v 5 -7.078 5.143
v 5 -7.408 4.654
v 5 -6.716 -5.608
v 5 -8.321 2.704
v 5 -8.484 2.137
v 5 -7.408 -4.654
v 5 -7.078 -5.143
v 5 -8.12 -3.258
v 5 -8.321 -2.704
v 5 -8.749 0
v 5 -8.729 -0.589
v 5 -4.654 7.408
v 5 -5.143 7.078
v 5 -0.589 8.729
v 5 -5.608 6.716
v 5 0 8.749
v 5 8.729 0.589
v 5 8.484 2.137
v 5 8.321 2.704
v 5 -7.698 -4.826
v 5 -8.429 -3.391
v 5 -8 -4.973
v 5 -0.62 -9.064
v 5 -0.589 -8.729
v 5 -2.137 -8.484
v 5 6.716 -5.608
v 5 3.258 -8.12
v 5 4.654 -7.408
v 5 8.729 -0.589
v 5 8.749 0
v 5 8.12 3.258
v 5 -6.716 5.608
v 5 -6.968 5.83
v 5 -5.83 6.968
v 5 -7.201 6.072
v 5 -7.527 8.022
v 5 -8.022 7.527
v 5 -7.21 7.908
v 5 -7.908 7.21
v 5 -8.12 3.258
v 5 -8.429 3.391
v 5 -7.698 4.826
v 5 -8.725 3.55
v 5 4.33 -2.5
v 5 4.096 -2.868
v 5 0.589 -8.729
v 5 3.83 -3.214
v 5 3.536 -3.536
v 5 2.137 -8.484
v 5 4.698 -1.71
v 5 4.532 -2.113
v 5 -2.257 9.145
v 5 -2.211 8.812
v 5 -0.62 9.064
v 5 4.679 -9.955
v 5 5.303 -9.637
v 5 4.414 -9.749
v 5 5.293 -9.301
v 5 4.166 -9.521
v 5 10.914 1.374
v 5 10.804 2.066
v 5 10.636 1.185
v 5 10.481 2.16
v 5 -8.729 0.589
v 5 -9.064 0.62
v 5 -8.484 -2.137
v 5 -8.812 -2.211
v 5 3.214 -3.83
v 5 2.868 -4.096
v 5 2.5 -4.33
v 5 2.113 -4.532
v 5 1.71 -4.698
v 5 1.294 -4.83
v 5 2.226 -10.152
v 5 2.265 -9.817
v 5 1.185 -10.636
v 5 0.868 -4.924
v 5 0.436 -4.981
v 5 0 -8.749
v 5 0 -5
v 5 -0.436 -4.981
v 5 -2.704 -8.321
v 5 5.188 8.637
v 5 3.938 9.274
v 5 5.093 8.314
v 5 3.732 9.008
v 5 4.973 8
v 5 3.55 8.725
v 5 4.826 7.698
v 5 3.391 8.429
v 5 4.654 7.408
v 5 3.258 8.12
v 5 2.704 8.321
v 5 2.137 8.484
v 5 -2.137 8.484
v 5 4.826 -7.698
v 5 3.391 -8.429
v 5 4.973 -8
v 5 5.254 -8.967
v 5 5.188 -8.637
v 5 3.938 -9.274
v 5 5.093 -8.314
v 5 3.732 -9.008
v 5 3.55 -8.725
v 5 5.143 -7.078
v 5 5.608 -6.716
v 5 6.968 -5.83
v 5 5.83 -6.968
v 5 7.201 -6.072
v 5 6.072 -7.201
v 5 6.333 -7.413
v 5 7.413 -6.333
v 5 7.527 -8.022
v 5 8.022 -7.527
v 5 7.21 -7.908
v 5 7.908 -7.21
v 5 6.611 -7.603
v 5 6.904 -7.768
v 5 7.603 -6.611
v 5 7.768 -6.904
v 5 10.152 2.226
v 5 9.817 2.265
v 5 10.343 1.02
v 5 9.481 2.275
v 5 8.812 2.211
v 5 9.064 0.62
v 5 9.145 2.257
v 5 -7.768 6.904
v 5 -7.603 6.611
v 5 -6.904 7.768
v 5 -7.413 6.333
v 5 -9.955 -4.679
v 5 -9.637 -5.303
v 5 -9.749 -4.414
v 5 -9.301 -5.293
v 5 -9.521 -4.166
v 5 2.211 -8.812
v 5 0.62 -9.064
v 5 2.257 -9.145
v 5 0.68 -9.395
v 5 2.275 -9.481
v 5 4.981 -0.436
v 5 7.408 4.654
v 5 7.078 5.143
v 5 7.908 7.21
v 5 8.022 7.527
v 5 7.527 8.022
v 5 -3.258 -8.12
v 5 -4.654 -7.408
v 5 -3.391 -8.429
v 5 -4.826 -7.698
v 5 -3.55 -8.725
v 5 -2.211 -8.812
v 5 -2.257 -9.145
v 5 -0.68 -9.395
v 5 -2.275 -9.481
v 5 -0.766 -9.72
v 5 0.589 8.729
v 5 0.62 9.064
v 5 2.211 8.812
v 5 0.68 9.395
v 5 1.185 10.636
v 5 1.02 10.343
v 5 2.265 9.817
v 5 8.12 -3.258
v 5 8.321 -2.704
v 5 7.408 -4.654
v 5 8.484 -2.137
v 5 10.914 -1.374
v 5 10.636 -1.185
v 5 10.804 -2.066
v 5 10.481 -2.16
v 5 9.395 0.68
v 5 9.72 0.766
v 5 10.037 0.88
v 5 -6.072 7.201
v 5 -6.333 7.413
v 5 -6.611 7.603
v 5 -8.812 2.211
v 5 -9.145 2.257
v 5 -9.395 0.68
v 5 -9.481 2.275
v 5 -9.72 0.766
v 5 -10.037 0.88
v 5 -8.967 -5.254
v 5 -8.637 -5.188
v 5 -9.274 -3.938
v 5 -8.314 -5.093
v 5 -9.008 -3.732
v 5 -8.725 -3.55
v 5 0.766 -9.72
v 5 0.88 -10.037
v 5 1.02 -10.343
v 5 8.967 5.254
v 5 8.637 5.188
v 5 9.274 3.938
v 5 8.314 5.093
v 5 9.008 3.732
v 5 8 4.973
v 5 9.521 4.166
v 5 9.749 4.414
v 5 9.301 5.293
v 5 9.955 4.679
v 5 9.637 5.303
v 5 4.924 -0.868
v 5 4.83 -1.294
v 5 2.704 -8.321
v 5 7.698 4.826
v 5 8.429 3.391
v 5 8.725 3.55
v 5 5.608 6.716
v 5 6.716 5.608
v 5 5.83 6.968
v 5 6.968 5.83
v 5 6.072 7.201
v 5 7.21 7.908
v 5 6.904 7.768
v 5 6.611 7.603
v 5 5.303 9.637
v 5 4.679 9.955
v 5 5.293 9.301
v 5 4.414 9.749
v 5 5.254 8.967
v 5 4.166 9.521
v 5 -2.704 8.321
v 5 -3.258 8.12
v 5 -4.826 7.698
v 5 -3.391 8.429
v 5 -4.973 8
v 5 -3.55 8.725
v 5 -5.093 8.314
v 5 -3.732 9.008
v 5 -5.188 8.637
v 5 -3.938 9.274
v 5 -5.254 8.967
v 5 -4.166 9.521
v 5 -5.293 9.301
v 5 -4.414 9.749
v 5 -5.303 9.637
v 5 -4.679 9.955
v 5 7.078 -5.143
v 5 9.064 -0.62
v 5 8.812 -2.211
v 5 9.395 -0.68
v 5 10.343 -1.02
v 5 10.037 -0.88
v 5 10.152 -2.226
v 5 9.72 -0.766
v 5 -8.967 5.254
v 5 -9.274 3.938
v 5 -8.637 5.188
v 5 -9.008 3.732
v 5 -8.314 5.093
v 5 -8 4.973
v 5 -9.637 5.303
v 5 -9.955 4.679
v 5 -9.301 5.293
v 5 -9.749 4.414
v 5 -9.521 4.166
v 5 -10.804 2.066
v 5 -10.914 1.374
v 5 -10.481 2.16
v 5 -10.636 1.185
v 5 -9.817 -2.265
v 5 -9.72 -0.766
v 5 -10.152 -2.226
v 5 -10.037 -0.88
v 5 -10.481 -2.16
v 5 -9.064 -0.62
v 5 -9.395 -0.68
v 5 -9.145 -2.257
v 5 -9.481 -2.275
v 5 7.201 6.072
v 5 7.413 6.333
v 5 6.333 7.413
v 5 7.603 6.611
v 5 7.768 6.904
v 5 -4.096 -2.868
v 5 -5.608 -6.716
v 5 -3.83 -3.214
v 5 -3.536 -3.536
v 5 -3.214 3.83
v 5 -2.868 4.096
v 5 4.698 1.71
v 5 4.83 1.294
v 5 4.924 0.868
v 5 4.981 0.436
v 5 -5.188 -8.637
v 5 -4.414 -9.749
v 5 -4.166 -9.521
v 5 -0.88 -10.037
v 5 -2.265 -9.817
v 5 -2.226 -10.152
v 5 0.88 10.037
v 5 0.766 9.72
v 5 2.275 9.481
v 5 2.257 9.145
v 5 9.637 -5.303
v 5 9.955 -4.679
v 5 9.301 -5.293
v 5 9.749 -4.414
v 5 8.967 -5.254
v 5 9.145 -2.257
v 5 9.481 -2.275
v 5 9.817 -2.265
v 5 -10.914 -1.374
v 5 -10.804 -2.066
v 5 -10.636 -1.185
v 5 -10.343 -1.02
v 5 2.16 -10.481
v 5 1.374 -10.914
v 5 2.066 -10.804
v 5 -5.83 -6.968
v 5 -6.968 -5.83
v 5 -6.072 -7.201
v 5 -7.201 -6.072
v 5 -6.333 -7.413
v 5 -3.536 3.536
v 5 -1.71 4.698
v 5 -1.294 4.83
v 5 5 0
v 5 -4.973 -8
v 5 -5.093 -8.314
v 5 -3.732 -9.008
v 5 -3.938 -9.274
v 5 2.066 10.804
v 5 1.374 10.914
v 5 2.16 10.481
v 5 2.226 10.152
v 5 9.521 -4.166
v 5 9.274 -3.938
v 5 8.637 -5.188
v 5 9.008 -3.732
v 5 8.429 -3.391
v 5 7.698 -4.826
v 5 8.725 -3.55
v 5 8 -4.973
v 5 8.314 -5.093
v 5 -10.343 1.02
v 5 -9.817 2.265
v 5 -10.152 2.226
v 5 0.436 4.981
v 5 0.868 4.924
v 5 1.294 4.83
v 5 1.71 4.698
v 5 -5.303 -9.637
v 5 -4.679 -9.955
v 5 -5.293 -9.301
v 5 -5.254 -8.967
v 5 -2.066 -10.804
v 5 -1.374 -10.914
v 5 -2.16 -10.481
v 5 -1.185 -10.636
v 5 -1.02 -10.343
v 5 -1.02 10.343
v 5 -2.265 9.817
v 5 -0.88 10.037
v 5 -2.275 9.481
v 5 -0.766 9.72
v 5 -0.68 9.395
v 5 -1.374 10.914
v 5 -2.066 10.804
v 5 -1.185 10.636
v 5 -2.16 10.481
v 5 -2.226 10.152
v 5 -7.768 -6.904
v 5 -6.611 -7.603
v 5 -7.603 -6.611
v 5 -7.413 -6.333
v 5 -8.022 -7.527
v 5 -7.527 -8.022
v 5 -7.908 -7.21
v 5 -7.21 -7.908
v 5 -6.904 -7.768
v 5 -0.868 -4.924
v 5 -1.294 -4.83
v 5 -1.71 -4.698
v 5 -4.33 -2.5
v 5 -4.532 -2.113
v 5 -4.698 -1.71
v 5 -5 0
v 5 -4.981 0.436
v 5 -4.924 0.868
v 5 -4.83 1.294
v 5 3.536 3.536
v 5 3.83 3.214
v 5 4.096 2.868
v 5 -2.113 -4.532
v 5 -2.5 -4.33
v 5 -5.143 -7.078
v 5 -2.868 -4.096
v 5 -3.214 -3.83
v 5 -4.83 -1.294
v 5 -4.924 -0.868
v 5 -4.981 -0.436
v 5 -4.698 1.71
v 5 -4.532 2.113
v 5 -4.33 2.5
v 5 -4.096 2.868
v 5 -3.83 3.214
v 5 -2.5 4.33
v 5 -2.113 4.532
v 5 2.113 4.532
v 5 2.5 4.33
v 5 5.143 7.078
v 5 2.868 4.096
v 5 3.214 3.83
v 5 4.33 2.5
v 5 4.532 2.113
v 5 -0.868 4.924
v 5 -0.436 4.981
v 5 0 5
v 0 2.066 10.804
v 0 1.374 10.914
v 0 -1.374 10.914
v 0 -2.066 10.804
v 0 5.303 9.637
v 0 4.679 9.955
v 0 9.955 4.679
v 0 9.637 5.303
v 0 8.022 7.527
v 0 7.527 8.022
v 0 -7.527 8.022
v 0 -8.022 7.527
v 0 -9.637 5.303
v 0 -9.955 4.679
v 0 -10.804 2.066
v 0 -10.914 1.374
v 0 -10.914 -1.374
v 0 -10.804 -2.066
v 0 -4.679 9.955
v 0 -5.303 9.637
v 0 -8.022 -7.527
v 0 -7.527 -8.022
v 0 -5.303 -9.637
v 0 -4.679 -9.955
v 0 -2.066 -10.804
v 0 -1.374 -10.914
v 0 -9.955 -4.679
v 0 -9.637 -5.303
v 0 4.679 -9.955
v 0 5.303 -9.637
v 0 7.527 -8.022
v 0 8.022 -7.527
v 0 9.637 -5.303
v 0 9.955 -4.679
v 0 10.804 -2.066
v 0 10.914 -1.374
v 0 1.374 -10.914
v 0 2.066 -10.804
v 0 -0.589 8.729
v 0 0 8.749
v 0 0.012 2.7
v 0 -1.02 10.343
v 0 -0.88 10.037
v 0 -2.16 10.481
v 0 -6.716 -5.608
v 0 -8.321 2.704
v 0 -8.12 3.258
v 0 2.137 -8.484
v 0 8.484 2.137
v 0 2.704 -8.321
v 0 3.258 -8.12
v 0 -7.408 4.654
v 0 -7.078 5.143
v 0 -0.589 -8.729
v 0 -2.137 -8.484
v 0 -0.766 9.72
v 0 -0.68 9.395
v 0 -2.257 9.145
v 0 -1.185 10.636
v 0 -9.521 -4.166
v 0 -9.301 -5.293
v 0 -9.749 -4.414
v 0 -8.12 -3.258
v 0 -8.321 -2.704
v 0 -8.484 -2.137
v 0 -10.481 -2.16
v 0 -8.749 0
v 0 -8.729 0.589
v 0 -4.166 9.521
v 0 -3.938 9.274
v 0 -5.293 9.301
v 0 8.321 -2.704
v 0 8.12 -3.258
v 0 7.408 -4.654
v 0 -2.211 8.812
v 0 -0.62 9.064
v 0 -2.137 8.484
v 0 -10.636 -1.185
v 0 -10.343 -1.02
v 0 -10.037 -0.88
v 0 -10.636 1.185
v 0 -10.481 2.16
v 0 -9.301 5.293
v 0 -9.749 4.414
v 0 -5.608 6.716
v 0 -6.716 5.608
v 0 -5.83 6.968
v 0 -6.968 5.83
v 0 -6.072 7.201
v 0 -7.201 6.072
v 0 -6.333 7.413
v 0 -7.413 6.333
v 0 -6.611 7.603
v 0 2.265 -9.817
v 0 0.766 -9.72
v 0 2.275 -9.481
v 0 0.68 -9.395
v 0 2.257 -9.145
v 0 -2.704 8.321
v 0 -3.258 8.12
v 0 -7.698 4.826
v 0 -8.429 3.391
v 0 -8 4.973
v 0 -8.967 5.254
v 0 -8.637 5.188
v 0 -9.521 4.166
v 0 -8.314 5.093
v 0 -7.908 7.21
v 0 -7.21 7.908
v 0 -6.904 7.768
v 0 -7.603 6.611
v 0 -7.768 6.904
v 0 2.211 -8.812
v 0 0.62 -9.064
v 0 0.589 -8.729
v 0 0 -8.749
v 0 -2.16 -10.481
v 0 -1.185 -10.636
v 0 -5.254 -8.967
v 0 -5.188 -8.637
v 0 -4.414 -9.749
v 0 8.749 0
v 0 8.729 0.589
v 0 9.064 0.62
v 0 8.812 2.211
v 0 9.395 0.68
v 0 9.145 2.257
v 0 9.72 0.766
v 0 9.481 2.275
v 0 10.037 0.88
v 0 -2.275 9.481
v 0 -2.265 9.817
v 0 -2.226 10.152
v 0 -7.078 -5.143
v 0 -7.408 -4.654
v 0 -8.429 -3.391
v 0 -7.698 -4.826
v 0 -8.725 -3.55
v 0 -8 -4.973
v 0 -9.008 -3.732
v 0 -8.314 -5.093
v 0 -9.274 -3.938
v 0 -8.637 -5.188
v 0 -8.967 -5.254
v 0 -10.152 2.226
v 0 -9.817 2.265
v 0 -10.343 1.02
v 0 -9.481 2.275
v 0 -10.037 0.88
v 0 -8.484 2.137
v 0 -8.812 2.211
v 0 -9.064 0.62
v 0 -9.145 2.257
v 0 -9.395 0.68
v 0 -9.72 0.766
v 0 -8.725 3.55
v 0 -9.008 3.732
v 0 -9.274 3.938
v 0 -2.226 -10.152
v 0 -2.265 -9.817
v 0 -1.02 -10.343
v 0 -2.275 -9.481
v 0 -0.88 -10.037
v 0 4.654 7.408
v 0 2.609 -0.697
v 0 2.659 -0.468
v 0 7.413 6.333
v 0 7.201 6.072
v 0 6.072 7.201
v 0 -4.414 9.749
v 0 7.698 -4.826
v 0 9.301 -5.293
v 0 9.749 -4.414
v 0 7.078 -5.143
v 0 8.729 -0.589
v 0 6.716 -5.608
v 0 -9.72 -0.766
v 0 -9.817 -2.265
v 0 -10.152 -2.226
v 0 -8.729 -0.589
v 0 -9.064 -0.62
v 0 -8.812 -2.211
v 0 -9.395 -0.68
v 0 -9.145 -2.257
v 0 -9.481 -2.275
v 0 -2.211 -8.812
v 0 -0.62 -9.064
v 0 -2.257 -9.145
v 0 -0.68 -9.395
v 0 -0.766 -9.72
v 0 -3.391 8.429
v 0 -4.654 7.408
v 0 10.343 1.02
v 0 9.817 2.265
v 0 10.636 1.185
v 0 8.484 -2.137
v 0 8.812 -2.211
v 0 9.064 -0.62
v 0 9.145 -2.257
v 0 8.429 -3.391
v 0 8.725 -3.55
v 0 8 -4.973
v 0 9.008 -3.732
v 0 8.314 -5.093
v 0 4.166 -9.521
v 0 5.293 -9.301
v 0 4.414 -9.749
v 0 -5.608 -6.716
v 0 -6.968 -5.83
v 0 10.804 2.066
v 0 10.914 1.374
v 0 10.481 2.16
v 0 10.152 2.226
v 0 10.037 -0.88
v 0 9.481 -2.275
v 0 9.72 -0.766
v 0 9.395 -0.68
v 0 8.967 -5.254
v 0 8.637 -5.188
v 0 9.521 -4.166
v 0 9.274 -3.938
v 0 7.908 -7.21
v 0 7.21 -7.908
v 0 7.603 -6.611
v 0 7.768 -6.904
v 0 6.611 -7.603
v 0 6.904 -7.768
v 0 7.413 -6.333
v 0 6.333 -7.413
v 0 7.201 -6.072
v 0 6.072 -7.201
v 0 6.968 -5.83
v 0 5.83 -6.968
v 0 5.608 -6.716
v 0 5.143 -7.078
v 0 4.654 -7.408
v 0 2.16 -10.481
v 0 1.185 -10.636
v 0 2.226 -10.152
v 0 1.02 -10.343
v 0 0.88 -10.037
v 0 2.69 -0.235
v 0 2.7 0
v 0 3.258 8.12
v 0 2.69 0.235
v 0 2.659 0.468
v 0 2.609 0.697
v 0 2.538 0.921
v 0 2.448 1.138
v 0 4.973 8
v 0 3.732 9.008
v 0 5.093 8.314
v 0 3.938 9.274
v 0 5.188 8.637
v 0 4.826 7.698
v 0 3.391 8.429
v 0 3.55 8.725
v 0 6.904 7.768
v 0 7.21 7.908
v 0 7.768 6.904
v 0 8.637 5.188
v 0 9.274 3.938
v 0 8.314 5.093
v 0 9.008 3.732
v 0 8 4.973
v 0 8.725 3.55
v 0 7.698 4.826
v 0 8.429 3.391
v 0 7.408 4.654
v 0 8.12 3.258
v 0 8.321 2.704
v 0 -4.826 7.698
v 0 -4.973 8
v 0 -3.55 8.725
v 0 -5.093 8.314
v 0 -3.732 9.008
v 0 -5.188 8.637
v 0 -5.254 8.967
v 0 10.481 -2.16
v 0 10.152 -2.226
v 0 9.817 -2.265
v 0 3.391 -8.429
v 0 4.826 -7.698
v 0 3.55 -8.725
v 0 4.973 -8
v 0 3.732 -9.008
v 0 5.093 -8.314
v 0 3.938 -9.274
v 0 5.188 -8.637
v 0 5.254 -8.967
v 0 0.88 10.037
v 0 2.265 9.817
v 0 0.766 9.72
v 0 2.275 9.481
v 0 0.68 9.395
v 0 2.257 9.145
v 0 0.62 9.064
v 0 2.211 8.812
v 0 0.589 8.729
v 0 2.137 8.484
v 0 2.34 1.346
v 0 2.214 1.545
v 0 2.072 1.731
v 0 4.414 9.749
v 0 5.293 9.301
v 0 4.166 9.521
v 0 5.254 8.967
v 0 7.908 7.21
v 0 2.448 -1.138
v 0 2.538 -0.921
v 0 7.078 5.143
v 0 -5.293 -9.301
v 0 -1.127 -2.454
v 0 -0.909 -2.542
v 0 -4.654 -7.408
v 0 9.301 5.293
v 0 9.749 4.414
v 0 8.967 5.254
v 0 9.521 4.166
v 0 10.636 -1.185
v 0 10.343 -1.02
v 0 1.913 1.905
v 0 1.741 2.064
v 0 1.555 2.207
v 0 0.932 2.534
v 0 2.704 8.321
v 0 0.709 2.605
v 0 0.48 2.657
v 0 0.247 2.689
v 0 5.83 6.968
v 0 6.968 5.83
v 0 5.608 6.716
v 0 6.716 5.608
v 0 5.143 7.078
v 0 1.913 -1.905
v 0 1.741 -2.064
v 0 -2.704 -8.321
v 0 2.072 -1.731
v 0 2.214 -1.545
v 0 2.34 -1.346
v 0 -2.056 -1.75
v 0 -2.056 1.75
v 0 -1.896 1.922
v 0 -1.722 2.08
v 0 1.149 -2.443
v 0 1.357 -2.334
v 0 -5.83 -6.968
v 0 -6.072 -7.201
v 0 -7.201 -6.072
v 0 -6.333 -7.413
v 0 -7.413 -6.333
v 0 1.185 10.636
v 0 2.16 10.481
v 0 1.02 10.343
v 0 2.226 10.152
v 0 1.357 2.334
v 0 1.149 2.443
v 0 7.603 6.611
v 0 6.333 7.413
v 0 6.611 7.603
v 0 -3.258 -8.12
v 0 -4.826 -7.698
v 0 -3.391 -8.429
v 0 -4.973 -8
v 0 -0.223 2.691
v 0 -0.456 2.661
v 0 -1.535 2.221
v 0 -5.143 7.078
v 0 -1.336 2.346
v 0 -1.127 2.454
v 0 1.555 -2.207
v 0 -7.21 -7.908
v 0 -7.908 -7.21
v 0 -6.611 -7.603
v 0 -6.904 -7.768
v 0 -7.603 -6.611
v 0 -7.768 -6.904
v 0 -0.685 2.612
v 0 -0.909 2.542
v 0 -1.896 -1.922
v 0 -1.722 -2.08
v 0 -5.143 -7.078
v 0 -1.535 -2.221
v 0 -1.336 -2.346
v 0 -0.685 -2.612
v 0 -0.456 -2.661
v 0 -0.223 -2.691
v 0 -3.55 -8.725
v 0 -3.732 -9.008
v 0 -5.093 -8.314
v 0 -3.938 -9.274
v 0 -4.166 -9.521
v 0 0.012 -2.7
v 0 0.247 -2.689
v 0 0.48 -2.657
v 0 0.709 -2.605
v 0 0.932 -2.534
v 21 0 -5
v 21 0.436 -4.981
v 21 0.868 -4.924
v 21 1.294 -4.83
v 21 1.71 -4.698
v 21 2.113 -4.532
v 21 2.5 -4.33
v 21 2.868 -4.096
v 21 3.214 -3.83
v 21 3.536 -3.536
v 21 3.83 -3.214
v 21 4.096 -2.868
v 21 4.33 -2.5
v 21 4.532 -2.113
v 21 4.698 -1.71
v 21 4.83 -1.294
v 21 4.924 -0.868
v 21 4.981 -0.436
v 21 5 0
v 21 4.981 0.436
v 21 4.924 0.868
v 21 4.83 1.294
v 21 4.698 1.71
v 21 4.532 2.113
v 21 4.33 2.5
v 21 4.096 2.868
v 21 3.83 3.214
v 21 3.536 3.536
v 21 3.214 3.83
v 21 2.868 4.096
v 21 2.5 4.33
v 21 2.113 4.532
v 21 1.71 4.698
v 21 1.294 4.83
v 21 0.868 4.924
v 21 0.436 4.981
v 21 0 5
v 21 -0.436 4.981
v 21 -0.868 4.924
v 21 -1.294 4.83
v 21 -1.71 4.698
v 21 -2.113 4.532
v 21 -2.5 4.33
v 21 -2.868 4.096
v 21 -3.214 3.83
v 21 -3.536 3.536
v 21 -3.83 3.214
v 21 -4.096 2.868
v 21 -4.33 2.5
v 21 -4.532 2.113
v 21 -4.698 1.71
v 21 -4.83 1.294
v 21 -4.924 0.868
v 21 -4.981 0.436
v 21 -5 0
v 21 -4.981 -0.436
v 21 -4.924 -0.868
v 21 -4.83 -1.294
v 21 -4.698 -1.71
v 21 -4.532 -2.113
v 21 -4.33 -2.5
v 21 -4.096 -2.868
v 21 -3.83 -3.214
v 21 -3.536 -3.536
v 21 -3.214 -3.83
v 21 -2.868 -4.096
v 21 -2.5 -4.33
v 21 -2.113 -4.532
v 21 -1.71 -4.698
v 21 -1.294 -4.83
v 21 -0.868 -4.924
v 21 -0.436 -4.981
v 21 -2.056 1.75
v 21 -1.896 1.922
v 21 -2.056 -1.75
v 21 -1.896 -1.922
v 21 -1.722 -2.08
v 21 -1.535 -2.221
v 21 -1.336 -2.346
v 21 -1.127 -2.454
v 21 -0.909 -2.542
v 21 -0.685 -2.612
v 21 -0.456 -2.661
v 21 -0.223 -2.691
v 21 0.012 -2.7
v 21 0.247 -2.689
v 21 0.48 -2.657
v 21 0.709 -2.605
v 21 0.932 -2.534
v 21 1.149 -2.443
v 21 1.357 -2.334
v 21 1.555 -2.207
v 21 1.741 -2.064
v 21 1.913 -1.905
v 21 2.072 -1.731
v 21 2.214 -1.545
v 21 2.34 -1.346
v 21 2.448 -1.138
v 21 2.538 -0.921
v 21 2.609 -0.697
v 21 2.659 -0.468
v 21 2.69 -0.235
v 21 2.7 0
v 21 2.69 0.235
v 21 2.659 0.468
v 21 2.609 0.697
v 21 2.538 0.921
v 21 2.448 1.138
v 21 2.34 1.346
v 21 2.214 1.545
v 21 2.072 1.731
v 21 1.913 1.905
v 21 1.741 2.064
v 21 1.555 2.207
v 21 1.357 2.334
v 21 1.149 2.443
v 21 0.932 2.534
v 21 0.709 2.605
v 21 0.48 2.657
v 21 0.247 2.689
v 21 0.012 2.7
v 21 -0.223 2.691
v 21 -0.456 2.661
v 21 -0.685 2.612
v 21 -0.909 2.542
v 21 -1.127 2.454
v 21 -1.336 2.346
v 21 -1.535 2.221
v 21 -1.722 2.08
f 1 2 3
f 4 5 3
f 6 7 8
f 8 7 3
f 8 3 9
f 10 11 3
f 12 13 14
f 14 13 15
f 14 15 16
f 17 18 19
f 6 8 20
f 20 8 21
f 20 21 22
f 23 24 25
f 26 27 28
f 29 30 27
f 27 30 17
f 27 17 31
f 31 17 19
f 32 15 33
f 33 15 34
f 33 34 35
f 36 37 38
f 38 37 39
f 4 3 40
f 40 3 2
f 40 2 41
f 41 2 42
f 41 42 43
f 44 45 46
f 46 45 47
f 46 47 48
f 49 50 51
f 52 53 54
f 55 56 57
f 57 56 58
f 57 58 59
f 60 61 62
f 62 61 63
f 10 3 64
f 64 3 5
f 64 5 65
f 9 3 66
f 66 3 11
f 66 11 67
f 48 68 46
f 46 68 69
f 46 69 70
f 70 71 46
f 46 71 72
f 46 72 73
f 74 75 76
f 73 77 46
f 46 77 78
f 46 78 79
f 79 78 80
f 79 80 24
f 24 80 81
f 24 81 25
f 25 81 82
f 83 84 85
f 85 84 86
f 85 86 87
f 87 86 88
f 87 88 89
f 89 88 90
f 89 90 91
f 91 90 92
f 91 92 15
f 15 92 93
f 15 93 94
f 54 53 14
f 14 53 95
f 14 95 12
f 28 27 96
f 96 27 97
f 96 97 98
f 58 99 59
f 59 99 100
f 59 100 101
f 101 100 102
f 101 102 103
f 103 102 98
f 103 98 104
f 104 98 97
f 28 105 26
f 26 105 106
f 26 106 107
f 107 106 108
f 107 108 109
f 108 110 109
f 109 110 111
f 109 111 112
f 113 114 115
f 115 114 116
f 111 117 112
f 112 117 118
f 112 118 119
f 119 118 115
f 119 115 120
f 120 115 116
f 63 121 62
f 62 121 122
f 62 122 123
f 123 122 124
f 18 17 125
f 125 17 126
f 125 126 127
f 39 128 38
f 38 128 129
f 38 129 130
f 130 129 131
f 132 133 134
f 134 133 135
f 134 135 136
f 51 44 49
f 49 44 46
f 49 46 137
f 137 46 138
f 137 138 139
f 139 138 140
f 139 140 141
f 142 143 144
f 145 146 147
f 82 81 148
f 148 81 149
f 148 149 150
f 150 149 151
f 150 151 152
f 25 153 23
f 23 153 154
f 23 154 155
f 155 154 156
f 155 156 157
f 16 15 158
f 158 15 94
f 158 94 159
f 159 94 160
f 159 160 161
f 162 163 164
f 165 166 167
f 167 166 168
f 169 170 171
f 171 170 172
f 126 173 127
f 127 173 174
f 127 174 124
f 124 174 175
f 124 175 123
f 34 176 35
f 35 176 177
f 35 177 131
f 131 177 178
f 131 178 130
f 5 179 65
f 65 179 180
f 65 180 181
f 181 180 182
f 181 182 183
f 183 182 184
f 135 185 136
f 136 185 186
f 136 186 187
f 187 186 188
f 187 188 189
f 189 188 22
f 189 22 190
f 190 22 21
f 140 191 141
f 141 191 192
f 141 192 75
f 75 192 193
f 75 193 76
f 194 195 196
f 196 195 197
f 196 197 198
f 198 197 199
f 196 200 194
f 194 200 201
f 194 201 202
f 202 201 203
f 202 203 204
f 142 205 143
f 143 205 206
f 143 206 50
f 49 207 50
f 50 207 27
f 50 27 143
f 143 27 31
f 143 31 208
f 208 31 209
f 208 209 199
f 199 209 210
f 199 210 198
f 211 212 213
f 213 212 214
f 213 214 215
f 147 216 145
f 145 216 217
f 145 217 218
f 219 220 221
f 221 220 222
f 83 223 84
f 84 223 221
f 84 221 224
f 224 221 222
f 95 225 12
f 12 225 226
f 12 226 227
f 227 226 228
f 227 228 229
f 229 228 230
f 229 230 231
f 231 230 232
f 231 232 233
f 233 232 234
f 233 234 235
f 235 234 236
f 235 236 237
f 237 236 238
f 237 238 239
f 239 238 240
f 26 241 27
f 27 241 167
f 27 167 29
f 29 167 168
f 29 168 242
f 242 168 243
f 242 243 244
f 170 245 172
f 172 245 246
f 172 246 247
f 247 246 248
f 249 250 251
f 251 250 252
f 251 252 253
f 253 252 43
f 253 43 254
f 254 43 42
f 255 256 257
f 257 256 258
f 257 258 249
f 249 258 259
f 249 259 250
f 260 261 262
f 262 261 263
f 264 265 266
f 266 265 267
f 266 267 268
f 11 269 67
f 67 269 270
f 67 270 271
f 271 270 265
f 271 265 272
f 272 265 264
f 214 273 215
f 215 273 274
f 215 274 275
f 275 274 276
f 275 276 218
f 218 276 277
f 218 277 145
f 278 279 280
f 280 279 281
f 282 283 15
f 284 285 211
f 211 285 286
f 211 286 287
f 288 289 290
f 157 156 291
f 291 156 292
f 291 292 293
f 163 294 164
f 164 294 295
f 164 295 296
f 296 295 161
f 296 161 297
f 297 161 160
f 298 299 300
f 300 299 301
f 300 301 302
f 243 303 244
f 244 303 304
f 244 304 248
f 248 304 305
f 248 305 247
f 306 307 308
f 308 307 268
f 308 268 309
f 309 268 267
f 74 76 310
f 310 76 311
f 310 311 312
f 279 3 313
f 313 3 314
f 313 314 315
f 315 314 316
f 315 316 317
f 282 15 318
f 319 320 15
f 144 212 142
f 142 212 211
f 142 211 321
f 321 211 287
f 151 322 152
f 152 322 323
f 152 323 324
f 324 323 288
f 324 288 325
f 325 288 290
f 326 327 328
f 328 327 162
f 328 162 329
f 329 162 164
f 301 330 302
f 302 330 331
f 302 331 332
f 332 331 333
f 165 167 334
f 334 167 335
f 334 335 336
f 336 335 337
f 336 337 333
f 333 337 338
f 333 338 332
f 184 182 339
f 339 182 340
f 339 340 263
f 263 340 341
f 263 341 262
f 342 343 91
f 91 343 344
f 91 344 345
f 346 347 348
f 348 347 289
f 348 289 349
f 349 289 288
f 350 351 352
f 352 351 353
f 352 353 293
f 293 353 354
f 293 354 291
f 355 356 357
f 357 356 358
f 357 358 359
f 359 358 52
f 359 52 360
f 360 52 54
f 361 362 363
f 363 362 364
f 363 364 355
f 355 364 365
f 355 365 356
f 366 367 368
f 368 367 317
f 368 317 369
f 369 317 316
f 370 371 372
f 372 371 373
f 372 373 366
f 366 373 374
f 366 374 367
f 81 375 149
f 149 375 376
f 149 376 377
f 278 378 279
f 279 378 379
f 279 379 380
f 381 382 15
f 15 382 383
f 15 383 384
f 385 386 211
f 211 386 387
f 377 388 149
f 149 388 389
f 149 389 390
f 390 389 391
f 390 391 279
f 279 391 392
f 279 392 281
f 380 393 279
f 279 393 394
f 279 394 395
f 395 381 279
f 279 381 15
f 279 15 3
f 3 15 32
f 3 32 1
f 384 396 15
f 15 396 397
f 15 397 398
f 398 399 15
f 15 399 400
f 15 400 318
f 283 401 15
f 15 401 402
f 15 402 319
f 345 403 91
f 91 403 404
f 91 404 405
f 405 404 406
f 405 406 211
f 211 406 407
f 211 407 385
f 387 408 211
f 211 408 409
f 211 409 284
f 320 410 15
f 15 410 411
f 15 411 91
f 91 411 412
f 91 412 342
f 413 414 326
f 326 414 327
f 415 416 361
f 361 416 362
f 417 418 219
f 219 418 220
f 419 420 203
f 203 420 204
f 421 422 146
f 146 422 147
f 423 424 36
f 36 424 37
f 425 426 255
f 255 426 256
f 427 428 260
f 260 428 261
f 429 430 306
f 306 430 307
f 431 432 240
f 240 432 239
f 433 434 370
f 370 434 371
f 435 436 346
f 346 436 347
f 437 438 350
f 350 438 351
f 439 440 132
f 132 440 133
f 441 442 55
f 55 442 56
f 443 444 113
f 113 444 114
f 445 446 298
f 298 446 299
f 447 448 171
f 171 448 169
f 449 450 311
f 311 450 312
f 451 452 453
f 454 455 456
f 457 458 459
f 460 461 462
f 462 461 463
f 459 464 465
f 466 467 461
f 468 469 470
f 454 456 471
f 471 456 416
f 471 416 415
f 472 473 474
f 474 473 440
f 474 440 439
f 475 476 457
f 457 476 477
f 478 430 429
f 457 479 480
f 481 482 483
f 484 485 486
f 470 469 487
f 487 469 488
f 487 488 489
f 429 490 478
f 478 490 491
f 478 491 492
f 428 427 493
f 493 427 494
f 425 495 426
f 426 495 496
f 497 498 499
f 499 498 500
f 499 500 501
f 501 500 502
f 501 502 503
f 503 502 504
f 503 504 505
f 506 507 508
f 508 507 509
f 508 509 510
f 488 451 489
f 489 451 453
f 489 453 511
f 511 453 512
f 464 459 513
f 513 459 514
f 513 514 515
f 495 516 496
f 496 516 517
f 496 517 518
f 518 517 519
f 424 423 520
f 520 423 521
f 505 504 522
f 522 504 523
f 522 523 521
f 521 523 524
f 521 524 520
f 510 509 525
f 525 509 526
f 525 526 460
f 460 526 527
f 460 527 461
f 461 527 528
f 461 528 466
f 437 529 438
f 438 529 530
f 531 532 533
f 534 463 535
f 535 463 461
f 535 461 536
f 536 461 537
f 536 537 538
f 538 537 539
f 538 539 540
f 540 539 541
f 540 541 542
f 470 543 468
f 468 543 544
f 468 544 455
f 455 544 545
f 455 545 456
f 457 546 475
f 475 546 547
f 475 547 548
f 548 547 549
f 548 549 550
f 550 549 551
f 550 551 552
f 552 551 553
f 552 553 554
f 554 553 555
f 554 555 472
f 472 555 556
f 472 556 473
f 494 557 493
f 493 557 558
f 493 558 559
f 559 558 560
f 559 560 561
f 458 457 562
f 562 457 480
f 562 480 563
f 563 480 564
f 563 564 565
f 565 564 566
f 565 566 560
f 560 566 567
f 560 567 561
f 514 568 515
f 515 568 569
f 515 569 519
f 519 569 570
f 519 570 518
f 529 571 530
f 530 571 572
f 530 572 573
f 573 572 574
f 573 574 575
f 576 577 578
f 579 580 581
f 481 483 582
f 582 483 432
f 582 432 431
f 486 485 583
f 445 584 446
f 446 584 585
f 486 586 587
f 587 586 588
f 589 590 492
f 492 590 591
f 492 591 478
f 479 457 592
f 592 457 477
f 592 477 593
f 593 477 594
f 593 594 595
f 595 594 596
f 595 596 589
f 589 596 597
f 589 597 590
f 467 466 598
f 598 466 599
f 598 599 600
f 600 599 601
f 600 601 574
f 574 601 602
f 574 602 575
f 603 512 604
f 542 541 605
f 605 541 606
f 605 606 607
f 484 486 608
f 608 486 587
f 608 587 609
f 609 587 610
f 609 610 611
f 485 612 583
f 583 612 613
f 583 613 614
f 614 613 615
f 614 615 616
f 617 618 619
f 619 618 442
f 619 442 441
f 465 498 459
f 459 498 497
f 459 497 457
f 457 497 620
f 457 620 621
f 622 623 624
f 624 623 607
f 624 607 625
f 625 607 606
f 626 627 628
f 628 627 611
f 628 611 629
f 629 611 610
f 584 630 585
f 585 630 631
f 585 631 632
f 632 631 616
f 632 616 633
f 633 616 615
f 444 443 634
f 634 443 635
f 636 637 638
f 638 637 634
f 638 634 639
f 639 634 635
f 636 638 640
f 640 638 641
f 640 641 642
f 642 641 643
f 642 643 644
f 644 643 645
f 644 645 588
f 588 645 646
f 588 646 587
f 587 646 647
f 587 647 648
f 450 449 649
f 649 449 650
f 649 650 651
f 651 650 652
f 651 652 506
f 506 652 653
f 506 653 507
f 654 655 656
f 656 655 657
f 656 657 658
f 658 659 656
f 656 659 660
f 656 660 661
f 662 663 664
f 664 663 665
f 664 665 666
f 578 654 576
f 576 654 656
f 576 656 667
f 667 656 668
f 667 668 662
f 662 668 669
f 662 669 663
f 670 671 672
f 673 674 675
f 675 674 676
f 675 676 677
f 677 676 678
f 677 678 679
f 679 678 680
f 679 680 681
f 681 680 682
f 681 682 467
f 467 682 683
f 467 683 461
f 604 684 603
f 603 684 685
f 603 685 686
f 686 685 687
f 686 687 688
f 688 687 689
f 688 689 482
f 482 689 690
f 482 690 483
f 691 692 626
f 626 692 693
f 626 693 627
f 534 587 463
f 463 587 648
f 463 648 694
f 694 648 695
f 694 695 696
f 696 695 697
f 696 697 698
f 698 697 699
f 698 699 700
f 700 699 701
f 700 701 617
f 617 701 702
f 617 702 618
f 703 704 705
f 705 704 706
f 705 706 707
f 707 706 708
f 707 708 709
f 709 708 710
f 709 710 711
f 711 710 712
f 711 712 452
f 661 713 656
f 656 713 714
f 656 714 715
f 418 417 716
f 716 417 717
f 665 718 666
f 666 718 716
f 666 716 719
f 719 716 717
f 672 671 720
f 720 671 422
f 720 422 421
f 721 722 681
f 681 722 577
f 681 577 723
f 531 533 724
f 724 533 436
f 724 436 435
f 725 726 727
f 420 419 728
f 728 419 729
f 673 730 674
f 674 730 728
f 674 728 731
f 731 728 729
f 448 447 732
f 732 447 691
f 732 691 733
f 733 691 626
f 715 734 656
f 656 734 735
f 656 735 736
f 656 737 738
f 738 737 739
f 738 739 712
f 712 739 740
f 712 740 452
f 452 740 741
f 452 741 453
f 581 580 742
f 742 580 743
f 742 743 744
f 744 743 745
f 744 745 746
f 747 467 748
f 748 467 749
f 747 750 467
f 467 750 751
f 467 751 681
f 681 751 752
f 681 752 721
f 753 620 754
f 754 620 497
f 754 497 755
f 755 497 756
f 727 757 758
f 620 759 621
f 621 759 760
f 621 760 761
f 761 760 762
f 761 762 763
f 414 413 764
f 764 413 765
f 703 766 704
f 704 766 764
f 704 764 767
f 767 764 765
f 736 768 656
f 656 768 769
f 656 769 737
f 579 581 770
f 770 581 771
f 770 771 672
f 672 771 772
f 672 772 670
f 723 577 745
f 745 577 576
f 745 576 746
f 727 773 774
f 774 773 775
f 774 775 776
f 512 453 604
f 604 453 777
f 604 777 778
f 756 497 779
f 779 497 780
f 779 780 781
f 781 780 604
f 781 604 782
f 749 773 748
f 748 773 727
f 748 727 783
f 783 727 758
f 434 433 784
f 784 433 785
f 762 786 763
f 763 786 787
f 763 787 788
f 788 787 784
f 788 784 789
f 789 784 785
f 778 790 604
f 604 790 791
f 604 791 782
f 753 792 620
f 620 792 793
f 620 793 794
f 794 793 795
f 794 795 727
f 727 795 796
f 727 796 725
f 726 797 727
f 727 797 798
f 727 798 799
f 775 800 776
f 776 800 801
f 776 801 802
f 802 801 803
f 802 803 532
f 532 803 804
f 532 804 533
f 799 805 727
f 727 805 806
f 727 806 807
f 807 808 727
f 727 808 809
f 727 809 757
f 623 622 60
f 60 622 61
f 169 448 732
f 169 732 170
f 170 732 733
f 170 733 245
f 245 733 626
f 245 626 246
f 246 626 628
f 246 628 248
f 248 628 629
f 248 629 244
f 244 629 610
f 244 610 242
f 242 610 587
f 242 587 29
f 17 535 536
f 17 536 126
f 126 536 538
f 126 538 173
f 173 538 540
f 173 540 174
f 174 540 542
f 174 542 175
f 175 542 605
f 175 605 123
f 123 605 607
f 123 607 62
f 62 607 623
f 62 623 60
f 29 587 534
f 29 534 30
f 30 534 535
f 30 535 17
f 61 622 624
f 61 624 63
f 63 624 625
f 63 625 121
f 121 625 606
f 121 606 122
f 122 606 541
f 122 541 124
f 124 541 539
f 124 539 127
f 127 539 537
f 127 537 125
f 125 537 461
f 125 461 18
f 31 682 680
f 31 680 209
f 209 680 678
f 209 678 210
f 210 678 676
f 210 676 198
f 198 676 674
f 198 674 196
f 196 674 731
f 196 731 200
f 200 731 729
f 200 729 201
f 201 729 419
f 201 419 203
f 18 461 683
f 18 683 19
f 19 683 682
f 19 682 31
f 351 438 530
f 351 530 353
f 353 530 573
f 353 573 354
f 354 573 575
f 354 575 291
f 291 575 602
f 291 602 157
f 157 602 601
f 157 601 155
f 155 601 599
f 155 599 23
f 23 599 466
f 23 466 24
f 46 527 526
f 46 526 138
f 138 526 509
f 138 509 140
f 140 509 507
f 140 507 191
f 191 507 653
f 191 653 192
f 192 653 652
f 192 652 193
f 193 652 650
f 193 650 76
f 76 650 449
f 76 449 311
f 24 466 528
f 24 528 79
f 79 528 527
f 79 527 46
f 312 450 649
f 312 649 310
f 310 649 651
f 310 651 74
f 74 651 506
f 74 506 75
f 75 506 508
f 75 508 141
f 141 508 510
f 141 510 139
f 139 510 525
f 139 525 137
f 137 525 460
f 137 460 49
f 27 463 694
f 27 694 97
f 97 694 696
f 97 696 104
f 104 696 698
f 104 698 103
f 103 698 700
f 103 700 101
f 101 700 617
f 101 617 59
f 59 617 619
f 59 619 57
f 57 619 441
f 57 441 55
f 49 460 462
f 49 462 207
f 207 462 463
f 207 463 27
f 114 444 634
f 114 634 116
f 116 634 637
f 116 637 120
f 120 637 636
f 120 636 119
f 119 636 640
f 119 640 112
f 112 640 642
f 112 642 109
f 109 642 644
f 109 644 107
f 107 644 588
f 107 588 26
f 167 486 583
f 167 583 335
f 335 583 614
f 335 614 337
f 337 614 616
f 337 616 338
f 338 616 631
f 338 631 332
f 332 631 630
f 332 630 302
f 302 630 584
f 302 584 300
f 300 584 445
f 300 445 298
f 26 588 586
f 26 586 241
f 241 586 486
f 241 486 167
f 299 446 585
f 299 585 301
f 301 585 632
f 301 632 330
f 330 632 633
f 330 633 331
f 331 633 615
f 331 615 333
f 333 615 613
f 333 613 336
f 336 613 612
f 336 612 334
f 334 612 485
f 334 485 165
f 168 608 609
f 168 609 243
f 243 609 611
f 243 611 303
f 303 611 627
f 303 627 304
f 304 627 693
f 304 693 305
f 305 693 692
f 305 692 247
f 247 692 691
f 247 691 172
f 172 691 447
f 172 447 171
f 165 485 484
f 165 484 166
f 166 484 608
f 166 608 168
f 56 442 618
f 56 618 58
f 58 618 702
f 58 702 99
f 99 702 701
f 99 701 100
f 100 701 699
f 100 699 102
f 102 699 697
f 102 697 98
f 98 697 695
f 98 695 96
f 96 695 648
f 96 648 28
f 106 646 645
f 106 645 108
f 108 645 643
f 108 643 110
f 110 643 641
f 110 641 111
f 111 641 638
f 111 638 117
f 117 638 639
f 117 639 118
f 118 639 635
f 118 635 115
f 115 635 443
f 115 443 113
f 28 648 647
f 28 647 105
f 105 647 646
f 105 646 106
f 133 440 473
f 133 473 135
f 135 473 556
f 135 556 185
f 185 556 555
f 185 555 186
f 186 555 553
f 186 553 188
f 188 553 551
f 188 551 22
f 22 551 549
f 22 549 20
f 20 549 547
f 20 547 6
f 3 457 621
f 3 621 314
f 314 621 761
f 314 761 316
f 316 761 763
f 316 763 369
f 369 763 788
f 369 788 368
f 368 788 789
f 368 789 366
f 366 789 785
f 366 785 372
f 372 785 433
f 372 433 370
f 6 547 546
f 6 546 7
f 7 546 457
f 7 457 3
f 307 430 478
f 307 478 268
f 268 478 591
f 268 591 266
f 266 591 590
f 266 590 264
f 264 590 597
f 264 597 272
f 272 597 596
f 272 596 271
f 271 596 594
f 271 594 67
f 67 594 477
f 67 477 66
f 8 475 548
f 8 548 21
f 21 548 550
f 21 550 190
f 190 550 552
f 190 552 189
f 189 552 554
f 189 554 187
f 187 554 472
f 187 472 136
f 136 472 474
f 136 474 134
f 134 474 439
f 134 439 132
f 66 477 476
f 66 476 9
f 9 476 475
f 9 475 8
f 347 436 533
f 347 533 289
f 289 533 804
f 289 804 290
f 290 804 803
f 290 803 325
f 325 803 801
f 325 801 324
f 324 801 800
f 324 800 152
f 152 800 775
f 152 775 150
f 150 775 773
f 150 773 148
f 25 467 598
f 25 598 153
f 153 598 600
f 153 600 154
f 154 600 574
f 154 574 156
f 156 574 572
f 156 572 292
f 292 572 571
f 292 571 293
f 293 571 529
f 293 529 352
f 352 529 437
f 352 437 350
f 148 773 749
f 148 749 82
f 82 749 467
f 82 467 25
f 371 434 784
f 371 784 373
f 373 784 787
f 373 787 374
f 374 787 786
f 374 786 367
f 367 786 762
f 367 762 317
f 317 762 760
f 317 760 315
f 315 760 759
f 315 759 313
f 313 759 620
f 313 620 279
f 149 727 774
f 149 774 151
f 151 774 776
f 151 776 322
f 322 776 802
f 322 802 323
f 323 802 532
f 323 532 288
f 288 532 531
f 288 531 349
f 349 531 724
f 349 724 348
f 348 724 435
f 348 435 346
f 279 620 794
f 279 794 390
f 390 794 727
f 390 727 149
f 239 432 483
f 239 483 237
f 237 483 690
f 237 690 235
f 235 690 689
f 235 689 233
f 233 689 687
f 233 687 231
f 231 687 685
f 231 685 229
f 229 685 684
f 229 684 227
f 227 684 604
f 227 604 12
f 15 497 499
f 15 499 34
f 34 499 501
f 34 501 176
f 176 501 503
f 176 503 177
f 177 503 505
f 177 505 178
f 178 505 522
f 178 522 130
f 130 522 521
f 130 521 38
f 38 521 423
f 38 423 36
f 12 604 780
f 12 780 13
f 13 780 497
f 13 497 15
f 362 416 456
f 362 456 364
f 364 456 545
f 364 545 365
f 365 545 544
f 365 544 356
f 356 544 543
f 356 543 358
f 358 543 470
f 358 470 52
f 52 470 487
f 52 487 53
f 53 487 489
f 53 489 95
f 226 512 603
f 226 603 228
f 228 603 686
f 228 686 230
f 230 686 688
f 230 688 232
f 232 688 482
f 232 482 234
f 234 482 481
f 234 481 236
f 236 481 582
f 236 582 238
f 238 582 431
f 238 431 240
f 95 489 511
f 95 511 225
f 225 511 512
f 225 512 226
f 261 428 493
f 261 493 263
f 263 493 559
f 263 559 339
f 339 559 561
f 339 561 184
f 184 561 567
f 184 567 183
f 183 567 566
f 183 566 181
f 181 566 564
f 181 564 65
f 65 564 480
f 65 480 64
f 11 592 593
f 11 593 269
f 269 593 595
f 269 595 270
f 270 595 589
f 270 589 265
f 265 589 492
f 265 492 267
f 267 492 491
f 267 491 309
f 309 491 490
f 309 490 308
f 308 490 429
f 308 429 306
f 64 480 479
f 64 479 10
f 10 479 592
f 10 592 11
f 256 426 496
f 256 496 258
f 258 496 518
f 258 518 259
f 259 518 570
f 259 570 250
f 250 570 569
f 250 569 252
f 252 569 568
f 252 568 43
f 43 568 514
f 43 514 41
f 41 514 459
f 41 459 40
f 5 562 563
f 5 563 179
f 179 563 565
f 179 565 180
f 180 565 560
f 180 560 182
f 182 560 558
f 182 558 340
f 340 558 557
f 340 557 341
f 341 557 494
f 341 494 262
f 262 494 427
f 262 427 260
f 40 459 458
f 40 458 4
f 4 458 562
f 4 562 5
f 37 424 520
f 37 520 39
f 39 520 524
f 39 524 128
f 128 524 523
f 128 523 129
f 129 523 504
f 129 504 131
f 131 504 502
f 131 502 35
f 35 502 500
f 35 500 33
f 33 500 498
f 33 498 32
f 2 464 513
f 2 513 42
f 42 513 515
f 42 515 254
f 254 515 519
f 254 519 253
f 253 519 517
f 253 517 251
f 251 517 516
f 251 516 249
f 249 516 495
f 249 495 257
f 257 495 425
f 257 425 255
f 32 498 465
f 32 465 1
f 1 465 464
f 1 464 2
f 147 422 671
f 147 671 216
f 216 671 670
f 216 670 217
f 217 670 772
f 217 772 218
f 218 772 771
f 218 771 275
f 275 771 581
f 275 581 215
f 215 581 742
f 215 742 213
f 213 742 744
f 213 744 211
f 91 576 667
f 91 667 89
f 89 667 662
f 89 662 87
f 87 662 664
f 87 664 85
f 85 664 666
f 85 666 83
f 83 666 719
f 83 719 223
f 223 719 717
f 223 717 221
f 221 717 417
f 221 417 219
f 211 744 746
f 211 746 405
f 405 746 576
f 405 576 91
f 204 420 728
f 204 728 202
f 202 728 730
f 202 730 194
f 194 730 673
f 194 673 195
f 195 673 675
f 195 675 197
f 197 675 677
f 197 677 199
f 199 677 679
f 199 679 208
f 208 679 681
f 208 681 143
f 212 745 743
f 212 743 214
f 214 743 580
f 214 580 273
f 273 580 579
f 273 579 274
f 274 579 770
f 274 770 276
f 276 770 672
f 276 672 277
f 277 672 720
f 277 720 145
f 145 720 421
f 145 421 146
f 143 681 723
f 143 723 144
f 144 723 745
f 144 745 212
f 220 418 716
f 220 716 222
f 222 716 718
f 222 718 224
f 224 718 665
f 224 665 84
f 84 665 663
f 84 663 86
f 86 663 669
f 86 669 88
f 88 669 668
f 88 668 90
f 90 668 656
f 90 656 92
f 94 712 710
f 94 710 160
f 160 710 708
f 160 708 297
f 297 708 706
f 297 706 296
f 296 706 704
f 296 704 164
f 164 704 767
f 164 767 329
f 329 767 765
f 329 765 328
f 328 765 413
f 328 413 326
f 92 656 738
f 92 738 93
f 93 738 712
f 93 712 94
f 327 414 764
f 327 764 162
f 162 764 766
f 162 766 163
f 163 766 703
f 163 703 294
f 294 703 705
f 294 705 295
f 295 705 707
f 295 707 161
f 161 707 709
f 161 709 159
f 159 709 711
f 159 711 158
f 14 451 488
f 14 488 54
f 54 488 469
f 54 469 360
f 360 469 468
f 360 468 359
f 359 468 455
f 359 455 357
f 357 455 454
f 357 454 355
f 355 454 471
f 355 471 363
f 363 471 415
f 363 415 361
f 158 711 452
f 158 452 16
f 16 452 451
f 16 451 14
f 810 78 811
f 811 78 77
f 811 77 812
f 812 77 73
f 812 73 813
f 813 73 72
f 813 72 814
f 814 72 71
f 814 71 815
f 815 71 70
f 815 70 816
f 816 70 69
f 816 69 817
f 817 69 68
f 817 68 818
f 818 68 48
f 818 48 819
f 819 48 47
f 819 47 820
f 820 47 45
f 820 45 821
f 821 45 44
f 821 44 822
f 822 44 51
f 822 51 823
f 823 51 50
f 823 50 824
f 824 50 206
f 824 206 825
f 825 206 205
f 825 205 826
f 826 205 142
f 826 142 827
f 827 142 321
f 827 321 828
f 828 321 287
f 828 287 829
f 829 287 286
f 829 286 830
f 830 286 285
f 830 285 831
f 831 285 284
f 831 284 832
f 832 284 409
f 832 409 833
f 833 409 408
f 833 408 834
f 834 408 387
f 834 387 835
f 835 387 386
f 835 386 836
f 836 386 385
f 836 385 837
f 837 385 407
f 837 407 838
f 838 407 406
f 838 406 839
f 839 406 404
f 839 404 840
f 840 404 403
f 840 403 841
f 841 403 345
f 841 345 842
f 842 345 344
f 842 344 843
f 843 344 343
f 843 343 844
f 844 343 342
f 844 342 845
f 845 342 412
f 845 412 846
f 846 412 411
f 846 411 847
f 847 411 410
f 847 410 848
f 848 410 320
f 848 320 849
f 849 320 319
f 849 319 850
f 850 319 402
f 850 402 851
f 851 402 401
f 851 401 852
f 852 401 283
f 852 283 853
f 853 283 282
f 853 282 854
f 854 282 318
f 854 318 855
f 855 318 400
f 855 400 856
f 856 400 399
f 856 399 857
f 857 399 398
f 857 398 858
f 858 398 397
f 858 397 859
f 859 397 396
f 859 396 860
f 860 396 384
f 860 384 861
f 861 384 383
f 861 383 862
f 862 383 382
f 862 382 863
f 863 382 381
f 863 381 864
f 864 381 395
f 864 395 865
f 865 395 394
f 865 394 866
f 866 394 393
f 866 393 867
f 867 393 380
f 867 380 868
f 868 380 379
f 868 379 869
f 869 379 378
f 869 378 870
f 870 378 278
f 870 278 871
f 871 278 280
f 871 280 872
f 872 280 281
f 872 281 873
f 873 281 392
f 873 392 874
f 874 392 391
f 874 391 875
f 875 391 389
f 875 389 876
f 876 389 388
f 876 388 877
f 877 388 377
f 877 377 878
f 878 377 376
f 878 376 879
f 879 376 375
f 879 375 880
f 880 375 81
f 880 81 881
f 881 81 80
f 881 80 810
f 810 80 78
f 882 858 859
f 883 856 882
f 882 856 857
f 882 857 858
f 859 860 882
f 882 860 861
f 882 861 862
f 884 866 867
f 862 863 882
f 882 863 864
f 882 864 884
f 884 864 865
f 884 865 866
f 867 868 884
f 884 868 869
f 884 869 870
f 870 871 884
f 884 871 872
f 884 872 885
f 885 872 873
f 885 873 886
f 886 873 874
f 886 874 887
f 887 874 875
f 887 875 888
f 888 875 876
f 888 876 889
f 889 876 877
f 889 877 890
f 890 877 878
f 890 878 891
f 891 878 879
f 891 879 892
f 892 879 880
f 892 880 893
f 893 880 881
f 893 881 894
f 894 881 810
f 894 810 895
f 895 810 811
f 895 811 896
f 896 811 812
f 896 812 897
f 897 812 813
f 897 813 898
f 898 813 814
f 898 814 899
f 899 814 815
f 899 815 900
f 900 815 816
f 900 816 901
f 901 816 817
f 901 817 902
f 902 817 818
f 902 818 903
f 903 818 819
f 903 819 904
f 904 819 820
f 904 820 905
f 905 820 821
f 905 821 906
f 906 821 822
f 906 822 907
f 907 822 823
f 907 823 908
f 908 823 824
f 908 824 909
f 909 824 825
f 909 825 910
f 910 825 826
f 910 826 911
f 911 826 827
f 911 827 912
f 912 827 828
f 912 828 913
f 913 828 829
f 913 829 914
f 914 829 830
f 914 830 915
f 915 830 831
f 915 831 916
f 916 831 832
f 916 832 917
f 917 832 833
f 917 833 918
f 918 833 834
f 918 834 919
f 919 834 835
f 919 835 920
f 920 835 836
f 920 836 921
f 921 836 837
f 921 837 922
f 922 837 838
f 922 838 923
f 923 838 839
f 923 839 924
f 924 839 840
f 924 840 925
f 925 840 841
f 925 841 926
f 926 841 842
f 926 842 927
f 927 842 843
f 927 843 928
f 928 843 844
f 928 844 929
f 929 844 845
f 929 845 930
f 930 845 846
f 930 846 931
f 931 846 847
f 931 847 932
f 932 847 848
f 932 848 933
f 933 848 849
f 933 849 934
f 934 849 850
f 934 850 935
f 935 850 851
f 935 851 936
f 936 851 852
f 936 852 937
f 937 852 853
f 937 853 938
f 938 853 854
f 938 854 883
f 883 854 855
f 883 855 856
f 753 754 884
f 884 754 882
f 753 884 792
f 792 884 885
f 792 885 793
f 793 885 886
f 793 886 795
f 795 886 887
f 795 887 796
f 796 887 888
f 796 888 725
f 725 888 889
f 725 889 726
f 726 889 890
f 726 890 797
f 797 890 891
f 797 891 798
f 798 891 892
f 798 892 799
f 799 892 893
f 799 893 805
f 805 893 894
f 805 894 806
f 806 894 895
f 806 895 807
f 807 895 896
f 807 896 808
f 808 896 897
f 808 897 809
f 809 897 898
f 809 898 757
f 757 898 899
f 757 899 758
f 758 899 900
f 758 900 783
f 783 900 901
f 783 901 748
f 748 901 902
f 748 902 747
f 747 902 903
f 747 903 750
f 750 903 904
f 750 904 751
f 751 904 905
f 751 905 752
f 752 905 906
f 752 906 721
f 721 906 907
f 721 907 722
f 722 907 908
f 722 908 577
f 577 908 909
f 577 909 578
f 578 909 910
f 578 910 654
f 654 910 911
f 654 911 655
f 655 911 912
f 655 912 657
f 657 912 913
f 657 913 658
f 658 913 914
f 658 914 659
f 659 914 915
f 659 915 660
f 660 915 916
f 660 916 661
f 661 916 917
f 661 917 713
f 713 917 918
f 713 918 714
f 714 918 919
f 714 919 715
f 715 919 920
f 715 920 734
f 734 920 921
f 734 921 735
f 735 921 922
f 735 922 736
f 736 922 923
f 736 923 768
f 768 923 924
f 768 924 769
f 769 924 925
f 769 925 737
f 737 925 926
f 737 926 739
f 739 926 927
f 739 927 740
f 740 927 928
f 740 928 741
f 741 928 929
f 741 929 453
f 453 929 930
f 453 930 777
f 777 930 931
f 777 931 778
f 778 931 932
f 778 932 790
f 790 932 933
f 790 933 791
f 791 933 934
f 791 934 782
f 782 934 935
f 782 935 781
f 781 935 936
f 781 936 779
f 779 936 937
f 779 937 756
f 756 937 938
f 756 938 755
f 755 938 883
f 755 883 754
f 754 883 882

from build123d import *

# Parameters (mm, degrees)
BASPROSKE_W              = 5
BASPROSKE_H              = 11
TOOTHCUT_DEPTH           = 17.340134638
TEETHCUTS_COUNT          = 20
TEETHCUTS_ANGLE          = 342
BORSKE_R                 = 2.5
BORE_DEPTH               = 50.0000508
BOSS_EXTRUDE2_DEPTH      = 16
BOSS_EXTRUDE2_DEPTH_BACK = 5
SKETCH1_R                = 5
CUT_EXTRUDE1_DEPTH       = 27.061912983


with BuildPart() as part:
    # BasProSke → Base-Revolve (revolve)
    with BuildSketch(Plane(origin=(0, 0, 0), x_dir=(1, 0, 0), z_dir=(0, 1, 0)), mode=Mode.PRIVATE) as base_revolve_sk:
        with Locations((2.5, 5.5)):
            Rectangle(BASPROSKE_W, BASPROSKE_H)
    revolve(base_revolve_sk.sketch.rotate(Axis((-10, 0, 0), (1, 0, 0)), 180), axis=Axis((-10, 0, 0), (1, 0, 0)))

    # TooCutSke → ToothCut (cut, through all)
    with BuildSketch(Plane(origin=(0, 0, 0), x_dir=(0, 0, -1), z_dir=(1, 0, 0))):
        with BuildLine():
            ThreePointArc((0.589353609, 8.729127295), (0, 8.749), (-0.589353609, 8.729127295))
            ThreePointArc((-0.589353609, 8.729127295), (-0.82475631, 9.893403384), (-1.391689312, 10.937213814))
            ThreePointArc((-1.391689312, 10.937213814), (0, 11.0254), (1.391689312, 10.937213814))
            ThreePointArc((1.391689312, 10.937213814), (0.82475631, 9.893403384), (0.589353609, 8.729127295))
        make_face()
    toothcut = extrude(amount=TOOTHCUT_DEPTH, mode=Mode.SUBTRACT)

    # TeethCuts: ToothCut ×20 about axis
    teethcuts_axis = Axis((-10, 0, 0), (1, 0, 0))
    for i in range(1, TEETHCUTS_COUNT):
        add(toothcut.rotate(teethcuts_axis, i * TEETHCUTS_ANGLE / (TEETHCUTS_COUNT - 1)), mode=Mode.SUBTRACT)

    # BorSke → Bore (cut, symmetric)
    with BuildSketch(Plane(origin=(0, 0, 0), x_dir=(0, 0, -1), z_dir=(1, 0, 0))):
        with Locations(Location((0, 0, 0), (0, 0, 180))):
            Circle(BORSKE_R)
    extrude(amount=BORE_DEPTH, both=True, mode=Mode.SUBTRACT)

    # Sketch1 → Boss-Extrude2 (add, two sides: drawn at the far end of the back side and taken through both)
    with BuildSketch(Plane(origin=(5, 0, 0), x_dir=(0, 0, -1), z_dir=(1, 0, 0)).offset(-BOSS_EXTRUDE2_DEPTH_BACK)):
        Circle(SKETCH1_R)
    extrude(amount=BOSS_EXTRUDE2_DEPTH + BOSS_EXTRUDE2_DEPTH_BACK)

    # Sketch2 → Cut-Extrude1 (cut, through all)
    with BuildSketch(Plane(origin=(21, 0, 0), x_dir=(0, 0, -1), z_dir=(1, 0, 0))):
        with BuildLine():
            ThreePointArc((2.7, 0), (-1.132475165, 2.451020196), (-1.75, -2.056088519))
            Line((-1.75, -2.056088519), (1.75, -2.056088519))
            ThreePointArc((1.75, -2.056088519), (2.451020196, -1.132475165), (2.7, 0))
        make_face()
    extrude(amount=-CUT_EXTRUDE1_DEPTH, mode=Mode.SUBTRACT)


solid = part.part
